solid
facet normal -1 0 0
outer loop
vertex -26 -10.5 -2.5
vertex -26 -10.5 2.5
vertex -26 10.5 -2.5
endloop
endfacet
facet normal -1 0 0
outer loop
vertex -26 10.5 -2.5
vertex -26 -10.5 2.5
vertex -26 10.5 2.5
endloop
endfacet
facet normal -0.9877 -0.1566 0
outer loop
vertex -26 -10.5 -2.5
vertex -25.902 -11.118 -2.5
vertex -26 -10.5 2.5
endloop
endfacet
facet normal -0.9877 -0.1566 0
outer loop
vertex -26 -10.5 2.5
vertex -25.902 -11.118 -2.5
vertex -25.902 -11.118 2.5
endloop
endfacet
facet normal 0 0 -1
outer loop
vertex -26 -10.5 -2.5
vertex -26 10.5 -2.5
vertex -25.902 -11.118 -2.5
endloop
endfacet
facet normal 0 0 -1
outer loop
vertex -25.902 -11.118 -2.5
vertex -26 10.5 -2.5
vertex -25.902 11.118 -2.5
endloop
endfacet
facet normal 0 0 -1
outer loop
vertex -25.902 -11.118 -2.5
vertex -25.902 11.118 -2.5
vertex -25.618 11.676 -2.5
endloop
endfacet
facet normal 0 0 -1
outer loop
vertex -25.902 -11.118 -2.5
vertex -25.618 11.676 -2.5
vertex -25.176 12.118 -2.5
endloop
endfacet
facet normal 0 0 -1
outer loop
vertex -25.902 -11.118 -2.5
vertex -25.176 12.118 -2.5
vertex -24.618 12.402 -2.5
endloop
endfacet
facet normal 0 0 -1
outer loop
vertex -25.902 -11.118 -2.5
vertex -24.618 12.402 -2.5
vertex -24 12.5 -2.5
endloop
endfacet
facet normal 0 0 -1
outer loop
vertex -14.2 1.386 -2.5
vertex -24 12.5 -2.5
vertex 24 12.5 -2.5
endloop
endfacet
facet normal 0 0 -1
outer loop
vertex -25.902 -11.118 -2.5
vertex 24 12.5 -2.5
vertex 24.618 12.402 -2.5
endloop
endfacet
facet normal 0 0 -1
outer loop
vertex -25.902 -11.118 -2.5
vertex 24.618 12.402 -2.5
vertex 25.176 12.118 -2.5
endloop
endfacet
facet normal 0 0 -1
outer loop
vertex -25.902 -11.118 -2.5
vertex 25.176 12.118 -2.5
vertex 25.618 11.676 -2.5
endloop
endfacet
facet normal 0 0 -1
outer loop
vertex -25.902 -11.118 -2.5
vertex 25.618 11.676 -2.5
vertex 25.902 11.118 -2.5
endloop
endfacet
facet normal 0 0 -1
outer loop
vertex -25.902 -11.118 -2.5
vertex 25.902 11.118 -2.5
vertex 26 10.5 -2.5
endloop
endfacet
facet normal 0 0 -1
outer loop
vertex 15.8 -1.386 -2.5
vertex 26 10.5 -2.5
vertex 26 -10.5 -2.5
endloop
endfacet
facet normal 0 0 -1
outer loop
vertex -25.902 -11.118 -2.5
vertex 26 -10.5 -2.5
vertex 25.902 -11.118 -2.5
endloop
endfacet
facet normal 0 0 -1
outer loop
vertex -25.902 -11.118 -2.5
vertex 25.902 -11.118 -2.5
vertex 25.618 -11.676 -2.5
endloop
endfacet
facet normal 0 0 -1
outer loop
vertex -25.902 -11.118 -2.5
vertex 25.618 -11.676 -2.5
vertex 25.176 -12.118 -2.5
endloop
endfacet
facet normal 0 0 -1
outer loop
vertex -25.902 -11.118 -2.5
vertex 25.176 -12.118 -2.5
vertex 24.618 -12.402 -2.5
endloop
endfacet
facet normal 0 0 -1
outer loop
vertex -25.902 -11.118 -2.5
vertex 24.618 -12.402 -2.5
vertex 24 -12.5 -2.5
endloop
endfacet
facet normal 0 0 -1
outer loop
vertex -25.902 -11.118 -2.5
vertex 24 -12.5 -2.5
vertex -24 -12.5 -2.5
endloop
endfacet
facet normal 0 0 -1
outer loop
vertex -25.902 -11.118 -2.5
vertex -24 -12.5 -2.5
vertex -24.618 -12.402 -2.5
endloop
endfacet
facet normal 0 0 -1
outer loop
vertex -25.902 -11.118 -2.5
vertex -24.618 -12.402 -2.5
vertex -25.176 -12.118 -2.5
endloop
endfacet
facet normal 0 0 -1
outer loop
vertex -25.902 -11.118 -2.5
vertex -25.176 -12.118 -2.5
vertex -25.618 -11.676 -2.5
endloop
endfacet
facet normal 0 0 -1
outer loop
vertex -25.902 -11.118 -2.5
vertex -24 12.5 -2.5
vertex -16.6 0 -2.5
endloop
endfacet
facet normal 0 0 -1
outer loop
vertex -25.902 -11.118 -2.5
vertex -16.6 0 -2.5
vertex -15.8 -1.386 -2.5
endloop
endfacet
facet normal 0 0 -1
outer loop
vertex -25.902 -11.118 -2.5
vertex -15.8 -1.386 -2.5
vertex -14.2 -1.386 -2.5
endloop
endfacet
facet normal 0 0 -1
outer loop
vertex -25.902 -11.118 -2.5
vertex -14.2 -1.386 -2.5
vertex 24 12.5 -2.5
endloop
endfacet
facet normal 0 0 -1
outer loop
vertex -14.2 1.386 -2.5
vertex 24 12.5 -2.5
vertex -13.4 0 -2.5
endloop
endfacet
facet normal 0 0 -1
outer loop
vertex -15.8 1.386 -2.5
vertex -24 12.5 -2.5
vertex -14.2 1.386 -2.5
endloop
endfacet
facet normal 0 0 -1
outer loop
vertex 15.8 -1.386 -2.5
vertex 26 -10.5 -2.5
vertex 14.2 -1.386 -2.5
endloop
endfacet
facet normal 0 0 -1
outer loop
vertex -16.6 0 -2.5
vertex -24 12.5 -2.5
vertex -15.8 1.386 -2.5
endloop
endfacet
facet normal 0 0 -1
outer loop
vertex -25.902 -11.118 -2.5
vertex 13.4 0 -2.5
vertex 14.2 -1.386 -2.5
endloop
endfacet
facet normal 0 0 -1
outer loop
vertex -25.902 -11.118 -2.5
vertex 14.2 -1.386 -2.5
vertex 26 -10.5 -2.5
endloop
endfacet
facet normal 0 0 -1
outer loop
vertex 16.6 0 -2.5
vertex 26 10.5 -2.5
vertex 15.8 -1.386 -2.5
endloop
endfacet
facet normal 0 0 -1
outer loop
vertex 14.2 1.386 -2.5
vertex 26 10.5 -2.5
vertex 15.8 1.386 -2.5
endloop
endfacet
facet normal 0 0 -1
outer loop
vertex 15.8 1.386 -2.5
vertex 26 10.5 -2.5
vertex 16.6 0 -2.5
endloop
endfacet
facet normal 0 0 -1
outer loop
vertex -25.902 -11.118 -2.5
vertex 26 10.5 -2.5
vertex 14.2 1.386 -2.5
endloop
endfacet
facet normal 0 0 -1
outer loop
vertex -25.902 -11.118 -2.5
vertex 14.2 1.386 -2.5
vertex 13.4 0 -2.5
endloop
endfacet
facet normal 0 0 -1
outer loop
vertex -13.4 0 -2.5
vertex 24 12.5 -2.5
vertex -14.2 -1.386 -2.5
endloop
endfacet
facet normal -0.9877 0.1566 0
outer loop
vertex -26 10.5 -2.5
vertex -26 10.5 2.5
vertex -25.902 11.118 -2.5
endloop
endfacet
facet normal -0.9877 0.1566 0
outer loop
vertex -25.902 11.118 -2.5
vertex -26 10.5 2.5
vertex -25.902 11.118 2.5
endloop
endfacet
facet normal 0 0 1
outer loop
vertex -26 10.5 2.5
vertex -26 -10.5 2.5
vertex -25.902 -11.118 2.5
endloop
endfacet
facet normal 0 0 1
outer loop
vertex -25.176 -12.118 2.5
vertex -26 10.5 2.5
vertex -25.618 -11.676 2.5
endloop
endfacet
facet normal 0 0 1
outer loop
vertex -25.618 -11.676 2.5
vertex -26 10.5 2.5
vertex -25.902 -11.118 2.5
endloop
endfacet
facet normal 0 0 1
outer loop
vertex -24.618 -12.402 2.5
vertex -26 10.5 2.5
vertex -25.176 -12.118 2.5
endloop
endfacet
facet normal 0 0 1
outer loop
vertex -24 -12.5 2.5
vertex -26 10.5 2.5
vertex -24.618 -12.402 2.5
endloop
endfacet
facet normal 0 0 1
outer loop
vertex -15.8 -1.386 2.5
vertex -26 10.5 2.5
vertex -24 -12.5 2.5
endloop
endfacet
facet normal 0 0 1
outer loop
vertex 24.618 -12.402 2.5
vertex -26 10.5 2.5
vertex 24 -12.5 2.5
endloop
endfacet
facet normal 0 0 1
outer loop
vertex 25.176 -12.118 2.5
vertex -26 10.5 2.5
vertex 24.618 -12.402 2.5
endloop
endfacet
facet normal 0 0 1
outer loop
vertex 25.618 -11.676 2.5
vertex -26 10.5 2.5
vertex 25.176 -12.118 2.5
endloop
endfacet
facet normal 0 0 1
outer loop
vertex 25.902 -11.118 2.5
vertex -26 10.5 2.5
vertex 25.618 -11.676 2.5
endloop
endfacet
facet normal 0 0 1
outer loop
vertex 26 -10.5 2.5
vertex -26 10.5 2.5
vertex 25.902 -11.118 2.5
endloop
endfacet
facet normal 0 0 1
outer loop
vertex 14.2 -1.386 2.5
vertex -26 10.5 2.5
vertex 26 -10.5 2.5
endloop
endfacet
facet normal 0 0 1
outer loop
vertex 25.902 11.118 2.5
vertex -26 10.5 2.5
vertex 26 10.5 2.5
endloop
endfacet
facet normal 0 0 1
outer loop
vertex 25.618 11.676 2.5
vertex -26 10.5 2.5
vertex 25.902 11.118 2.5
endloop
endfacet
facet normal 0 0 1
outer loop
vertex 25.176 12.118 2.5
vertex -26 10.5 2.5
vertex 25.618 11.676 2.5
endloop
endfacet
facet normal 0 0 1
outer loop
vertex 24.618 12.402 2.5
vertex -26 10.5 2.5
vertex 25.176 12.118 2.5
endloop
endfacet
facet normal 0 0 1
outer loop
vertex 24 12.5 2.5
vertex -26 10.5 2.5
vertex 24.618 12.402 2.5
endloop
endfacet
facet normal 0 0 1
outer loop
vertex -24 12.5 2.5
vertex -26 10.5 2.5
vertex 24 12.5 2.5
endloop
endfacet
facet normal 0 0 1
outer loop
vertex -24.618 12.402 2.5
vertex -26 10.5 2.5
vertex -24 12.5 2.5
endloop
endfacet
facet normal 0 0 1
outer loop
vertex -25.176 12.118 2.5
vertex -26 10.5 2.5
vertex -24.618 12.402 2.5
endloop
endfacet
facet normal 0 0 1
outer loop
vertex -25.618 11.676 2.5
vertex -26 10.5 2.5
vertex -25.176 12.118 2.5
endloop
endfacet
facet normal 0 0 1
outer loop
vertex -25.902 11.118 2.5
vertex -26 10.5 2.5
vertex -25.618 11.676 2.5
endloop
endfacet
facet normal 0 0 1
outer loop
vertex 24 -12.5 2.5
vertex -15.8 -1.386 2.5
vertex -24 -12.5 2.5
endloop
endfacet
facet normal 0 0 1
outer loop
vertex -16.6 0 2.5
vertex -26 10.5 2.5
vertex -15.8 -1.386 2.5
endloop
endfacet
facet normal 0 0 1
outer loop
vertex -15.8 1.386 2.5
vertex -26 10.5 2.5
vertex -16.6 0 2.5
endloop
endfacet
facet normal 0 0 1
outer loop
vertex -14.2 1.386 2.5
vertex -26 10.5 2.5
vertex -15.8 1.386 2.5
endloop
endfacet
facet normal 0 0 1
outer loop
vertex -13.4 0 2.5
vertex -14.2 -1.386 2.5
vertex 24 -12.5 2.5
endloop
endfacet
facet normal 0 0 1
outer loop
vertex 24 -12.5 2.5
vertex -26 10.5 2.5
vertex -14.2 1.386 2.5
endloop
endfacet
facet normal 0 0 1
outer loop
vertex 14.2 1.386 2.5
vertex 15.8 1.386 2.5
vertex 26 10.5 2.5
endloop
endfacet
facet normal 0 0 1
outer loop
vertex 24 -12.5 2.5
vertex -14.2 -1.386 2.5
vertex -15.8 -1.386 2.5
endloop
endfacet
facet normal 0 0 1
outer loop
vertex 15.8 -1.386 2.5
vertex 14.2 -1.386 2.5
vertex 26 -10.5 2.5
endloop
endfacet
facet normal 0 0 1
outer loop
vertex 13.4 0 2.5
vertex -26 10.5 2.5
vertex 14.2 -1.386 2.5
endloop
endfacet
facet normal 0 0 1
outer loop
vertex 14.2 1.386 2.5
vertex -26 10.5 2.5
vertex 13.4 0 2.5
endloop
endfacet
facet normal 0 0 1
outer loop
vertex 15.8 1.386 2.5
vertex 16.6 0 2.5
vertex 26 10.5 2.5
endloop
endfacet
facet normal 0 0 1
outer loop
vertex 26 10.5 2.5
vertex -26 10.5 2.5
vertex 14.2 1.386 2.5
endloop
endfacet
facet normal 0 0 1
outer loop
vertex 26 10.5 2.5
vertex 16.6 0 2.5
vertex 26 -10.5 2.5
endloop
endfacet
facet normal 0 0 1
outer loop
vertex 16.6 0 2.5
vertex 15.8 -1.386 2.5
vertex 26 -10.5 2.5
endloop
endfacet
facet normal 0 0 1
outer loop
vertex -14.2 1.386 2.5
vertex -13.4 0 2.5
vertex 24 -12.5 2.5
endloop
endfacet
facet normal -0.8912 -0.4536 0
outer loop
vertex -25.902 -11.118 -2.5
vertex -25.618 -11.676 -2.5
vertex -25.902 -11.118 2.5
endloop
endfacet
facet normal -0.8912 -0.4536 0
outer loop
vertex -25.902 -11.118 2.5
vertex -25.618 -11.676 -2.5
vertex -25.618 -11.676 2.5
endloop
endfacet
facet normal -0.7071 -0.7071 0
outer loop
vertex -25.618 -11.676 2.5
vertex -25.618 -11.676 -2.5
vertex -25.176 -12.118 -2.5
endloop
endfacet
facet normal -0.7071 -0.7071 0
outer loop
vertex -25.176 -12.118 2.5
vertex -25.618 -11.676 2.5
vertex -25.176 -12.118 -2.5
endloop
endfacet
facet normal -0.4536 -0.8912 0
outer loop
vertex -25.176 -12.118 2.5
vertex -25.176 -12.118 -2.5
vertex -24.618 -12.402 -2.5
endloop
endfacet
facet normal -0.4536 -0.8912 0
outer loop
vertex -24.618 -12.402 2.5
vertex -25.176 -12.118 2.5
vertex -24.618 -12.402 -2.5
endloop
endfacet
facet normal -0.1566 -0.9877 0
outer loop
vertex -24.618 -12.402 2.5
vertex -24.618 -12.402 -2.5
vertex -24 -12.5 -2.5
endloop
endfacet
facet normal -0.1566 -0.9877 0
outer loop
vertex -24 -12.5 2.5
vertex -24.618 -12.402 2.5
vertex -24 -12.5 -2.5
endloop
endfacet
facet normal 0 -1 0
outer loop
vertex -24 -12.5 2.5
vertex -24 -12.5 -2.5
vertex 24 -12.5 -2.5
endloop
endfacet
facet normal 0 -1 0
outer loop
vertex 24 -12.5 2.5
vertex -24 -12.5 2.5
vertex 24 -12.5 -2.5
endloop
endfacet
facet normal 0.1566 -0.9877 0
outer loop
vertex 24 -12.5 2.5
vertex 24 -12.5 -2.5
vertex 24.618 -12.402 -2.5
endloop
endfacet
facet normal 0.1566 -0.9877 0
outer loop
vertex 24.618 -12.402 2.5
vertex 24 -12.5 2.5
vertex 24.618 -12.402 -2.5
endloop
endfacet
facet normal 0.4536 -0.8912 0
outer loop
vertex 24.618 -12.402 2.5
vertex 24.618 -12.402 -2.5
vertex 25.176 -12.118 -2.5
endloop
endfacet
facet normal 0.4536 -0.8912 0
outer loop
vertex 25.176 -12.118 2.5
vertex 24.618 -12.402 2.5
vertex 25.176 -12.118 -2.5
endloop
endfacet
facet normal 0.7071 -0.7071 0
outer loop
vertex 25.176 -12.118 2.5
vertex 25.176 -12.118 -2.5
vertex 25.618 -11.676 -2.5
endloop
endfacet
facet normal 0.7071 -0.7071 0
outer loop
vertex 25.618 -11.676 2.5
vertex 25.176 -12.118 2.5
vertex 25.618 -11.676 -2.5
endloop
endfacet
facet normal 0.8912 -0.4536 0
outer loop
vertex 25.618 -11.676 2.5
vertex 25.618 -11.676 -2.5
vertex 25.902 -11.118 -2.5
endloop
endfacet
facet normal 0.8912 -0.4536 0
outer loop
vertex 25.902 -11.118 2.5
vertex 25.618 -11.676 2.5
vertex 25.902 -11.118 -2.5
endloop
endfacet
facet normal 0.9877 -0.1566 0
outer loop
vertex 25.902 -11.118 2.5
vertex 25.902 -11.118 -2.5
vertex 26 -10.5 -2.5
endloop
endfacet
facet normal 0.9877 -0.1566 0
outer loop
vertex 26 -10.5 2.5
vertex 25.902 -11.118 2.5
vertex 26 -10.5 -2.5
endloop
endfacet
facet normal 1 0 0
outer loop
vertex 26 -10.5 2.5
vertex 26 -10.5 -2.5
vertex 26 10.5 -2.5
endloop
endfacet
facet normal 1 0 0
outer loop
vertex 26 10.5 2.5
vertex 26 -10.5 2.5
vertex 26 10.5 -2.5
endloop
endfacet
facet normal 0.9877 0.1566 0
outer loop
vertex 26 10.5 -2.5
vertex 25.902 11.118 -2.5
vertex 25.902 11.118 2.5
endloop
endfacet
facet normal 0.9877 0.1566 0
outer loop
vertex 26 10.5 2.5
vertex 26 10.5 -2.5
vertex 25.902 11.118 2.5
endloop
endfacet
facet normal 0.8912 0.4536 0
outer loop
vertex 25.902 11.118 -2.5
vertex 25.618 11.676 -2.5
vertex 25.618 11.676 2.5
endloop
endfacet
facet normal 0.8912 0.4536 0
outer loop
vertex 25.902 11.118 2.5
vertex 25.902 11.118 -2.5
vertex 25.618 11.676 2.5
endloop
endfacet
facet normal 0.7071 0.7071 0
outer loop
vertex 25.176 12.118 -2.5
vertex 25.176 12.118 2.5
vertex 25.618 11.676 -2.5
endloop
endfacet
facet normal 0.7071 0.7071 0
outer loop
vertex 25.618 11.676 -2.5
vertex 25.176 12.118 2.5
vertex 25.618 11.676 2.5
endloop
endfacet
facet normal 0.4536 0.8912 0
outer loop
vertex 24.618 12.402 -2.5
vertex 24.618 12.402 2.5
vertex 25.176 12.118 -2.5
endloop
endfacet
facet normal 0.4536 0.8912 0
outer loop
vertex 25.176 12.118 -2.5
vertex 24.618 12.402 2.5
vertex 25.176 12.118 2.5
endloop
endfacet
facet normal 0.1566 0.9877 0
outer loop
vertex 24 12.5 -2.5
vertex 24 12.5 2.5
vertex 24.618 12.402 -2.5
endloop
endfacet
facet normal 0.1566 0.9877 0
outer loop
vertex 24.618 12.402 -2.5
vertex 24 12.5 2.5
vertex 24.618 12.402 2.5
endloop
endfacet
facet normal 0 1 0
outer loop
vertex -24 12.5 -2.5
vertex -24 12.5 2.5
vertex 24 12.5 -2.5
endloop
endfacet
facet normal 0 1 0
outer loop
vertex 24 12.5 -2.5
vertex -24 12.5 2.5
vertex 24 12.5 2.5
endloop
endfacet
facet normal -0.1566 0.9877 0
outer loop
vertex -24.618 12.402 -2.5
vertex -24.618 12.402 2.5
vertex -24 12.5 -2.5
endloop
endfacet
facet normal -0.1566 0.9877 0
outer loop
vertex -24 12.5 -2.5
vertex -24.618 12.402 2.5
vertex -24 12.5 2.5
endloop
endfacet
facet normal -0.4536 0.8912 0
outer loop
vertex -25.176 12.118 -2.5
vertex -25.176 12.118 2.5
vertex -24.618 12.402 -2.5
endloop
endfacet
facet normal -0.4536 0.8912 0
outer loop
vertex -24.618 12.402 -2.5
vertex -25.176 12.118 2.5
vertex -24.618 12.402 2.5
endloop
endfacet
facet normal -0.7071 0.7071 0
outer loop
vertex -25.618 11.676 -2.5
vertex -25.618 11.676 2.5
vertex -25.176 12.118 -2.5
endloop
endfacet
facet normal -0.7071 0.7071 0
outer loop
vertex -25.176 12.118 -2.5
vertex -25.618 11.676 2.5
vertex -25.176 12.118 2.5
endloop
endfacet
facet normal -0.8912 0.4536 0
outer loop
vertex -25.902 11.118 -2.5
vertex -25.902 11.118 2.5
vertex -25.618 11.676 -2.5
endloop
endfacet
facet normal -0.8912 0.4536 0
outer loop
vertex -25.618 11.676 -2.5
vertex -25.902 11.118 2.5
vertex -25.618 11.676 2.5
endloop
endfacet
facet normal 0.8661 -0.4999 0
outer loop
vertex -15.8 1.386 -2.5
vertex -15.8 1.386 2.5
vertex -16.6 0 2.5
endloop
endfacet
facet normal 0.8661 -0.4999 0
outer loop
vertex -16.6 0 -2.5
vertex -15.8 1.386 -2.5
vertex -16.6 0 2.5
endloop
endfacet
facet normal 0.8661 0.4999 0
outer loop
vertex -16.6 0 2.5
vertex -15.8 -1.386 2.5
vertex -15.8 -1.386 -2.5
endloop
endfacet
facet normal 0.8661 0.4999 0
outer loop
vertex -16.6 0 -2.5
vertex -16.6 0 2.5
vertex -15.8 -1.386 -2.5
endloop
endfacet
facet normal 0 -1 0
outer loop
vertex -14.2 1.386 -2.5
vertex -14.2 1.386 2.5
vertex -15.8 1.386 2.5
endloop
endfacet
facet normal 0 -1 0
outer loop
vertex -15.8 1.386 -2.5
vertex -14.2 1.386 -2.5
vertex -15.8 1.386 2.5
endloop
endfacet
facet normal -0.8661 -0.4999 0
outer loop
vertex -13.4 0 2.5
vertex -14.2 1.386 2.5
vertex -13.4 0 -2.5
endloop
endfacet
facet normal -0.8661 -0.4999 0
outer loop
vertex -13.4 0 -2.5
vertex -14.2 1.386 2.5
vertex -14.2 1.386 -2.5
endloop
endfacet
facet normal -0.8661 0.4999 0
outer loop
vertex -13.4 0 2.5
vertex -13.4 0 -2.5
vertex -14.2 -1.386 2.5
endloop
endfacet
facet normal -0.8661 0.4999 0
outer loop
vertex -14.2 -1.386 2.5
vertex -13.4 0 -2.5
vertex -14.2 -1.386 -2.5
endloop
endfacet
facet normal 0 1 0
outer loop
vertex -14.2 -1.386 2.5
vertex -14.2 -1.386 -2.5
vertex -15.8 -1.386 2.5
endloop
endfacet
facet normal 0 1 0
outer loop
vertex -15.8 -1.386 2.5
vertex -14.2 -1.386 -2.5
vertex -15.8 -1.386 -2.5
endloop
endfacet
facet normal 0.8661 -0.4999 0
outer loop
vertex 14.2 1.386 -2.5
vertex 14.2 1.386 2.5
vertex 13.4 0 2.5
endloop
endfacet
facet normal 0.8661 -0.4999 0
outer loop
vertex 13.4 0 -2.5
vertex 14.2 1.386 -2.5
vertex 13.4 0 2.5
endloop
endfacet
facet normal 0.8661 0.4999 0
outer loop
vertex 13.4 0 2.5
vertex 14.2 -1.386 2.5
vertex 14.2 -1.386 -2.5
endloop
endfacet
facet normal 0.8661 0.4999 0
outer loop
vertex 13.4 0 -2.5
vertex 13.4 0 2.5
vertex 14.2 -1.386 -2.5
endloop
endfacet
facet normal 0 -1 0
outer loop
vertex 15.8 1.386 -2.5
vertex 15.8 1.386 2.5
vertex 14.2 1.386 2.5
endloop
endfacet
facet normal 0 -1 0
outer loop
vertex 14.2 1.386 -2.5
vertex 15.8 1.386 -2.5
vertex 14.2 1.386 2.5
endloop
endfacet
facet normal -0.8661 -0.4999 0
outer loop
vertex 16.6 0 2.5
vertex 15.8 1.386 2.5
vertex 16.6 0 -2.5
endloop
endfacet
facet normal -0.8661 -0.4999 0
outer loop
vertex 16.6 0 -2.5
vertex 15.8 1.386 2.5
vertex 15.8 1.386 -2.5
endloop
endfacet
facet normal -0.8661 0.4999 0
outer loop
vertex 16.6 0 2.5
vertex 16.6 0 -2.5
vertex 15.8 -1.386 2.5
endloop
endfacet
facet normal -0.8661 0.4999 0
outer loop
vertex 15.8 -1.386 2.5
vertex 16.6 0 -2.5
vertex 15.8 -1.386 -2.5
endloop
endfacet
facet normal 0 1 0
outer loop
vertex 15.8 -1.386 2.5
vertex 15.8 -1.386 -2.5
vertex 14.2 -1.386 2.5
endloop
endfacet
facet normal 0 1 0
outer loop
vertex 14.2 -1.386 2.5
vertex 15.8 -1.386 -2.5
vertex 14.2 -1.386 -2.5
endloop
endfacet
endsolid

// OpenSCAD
// file: obiscad/bcube.scad
//------------------------------------------------------------------------------
//  Bevel edge cube.
//  (c) Juan Gonzalez-Gomez (Obijuan), Sep-2012
//------------------------------------------------------------------------------

//----------------- IMPLEMENTATION USING THE MINKOWSKI OPERATOR ----------------

//------------------------------------------------------------------------------
//-- Bevel Cube main function
//-- Parameters:
//--   * Size:  Cube size
//--   * cr : Corner radius (if cr==0, a standar cube is built)
//--   * cres:  Corner resolution (in points). cres=0 means flat corners
//------------------------------------------------------------------------------
module bcube(size,cr=0,cres=0)
{
  //-- Internal cube size
  bsize = size - 2*[cr,cr,0];

  //-- Get the (x,y) coorner coordinates in the 1st cuadrant
  x = bsize[0]/2;
  y = bsize[1]/2;

  //-- A corner radius of 0 means a standar cube!
  if (cr==0)
    cube(bsize,center=true);
  else {

      
      //-- The height of minkowski object is double. So
      //-- we sould scale by 0.5
      scale([1,1,0.5])

      //-- This translation is for centering the minkowski objet
      translate([-x, -y,0])

      //-- Built the  beveled cube with minkowski
      minkowski() {

        //-- Internal cube
        cube(bsize,center=true);

        //-- Cylinder in the corner (1st cuadrant)
        translate([x,y, 0])
          cylinder(r=cr, h=bsize[2],center=true, $fn=4*(cres+1));
      }
  }

}


//-- Examples of use of the bcube() module

//-- Standar cube
translate([-15,15,0])
bcube([20,20,10]);

//-- Beveled cube (0 point resolution)
translate([15,15,0])
  bcube([20,20,10],cr=4);

//-- Beveled cube (1 point resolution)
translate([-15,-15,0])
  bcube([20,20,10],cr=4, cres=1);

//-- Beveled cube (4 points resolution)
translate([15,-15,0])
  bcube([20,20,10],cr=4, cres=4);
// main file
use <obiscad/bcube.scad>

X=0;
Y=1;
Z=2;

size = [52, 25, 5];
drill_d = 30;  //-- Distance between drills
drill_diam = 3.2;


difference() {
  bcube(size, cres = 4, cr = 2);

  translate([drill_d/2, 0, 0])
    cylinder(r = drill_diam/2, h = size[Z]+1, center = true);

  translate([-drill_d/2, 0, 0])
    cylinder(r = drill_diam/2, h = size[Z]+1, center = true);
}
